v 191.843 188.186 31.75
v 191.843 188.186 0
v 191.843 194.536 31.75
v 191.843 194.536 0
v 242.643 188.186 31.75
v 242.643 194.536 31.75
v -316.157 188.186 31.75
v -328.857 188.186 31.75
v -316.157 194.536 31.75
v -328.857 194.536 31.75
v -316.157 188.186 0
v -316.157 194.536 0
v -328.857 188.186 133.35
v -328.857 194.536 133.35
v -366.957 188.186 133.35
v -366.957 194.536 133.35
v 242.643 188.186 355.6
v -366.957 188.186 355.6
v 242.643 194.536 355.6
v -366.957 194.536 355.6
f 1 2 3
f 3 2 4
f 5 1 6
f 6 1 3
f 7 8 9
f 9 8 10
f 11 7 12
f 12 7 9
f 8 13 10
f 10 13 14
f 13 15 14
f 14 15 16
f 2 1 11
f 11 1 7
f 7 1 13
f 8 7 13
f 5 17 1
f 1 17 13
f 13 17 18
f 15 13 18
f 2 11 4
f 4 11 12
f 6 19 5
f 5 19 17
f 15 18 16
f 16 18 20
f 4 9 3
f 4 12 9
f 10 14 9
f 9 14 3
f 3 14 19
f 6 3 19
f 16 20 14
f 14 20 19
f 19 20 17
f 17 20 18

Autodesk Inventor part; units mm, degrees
ref_plane "YZ Plane" through (0, 0, 0) normal (1, 0, 0) x (0, 1, 0)
ref_plane "XZ Plane" through (0, 0, 0) normal (0, 1, 0) x (-1, 0, 0)
ref_plane "XY Plane" through (0, 0, 0) normal (0, 0, 1) x (1, 0, 0)
sketch "Sketch1" plane through (0, 0, 0) normal (0, 0, 1) x (1, 0, 0)
  line L0 (-379.6568, 188.1861) -> (255.3432, 188.1861)
  line L1 (255.3432, 188.1861) -> (255.3432, 194.5361)
  line L2 (255.3432, 194.5361) -> (-379.6568, 194.5361)
  line L3 (-379.6568, 194.5361) -> (-379.6568, 188.1861)
  point P0 (0, 0)
  dimension "d0" = 635
  dimension "d1" = 6.35
extrude "Extrusion1" add sketch "Sketch1" along normal blind 355.6
sketch "Sketch2" plane through (-379.6568, 188.1861, 0) normal (0, -1, 0) x (1, 0, 0)
  line L0 (635, 355.6) -> (0, 355.6) projected
  line L1 (0, 0) -> (0, 355.6) projected
  line L2 (0, 0) -> (635, 0) projected
  line L3 (635, 0) -> (635, 355.6) projected
  line L4 (12.7, 355.6) -> (622.3, 355.6)
  line L5 (622.3, 355.6) -> (622.3, 0)
  line L6 (622.3, 0) -> (12.7, 0)
  line L7 (12.7, 0) -> (12.7, 355.6)
  point P0 (379.6568, 0)
  dimension "d4" = 609.6
  dimension "d5" = 355.6
  dimension "d6" = 12.7
extrude "Extrusion2" cut sketch "Sketch2" against normal blind 355.6 contours L3 L2 L5 L0 | L7 L2 L1 L0
sketch "Sketch3" plane through (-366.9568, 194.5361, 0) normal (0, 1, 0) x (1, 0, 0)
  line L0 (0, 0) -> (0, -355.6) projected
  line L1 (609.6, 0) -> (558.8, 0)
  line L2 (558.8, 0) -> (558.8, -31.75)
  line L3 (558.8, -31.75) -> (609.6, -31.75)
  line L4 (609.6, -31.75) -> (609.6, 0)
  line L5 (0, 0) -> (50.8, 0)
  line L6 (50.8, 0) -> (50.8, -31.75)
  line L7 (50.8, -31.75) -> (0, -31.75)
  line L8 (0, -31.75) -> (0, 0)
  line L9 (0, -133.35) -> (38.1, -133.35)
  line L10 (38.1, -133.35) -> (38.1, -31.75)
  line L11 (38.1, -31.75) -> (0, -31.75)
  line L12 (0, -31.75) -> (0, -133.35)
  point P0 (366.9568, 0)
  dimension "d9" = 50.8
  dimension "d10" = 31.75
  dimension "d11" = 50.8
  dimension "d12" = 31.75
  dimension "d13" = 38.1
  dimension "d14" = 101.6
extrude "Extrusion3" cut sketch "Sketch3" against normal blind 25.4
properties part number "24in-by-14in_electronics_board"
